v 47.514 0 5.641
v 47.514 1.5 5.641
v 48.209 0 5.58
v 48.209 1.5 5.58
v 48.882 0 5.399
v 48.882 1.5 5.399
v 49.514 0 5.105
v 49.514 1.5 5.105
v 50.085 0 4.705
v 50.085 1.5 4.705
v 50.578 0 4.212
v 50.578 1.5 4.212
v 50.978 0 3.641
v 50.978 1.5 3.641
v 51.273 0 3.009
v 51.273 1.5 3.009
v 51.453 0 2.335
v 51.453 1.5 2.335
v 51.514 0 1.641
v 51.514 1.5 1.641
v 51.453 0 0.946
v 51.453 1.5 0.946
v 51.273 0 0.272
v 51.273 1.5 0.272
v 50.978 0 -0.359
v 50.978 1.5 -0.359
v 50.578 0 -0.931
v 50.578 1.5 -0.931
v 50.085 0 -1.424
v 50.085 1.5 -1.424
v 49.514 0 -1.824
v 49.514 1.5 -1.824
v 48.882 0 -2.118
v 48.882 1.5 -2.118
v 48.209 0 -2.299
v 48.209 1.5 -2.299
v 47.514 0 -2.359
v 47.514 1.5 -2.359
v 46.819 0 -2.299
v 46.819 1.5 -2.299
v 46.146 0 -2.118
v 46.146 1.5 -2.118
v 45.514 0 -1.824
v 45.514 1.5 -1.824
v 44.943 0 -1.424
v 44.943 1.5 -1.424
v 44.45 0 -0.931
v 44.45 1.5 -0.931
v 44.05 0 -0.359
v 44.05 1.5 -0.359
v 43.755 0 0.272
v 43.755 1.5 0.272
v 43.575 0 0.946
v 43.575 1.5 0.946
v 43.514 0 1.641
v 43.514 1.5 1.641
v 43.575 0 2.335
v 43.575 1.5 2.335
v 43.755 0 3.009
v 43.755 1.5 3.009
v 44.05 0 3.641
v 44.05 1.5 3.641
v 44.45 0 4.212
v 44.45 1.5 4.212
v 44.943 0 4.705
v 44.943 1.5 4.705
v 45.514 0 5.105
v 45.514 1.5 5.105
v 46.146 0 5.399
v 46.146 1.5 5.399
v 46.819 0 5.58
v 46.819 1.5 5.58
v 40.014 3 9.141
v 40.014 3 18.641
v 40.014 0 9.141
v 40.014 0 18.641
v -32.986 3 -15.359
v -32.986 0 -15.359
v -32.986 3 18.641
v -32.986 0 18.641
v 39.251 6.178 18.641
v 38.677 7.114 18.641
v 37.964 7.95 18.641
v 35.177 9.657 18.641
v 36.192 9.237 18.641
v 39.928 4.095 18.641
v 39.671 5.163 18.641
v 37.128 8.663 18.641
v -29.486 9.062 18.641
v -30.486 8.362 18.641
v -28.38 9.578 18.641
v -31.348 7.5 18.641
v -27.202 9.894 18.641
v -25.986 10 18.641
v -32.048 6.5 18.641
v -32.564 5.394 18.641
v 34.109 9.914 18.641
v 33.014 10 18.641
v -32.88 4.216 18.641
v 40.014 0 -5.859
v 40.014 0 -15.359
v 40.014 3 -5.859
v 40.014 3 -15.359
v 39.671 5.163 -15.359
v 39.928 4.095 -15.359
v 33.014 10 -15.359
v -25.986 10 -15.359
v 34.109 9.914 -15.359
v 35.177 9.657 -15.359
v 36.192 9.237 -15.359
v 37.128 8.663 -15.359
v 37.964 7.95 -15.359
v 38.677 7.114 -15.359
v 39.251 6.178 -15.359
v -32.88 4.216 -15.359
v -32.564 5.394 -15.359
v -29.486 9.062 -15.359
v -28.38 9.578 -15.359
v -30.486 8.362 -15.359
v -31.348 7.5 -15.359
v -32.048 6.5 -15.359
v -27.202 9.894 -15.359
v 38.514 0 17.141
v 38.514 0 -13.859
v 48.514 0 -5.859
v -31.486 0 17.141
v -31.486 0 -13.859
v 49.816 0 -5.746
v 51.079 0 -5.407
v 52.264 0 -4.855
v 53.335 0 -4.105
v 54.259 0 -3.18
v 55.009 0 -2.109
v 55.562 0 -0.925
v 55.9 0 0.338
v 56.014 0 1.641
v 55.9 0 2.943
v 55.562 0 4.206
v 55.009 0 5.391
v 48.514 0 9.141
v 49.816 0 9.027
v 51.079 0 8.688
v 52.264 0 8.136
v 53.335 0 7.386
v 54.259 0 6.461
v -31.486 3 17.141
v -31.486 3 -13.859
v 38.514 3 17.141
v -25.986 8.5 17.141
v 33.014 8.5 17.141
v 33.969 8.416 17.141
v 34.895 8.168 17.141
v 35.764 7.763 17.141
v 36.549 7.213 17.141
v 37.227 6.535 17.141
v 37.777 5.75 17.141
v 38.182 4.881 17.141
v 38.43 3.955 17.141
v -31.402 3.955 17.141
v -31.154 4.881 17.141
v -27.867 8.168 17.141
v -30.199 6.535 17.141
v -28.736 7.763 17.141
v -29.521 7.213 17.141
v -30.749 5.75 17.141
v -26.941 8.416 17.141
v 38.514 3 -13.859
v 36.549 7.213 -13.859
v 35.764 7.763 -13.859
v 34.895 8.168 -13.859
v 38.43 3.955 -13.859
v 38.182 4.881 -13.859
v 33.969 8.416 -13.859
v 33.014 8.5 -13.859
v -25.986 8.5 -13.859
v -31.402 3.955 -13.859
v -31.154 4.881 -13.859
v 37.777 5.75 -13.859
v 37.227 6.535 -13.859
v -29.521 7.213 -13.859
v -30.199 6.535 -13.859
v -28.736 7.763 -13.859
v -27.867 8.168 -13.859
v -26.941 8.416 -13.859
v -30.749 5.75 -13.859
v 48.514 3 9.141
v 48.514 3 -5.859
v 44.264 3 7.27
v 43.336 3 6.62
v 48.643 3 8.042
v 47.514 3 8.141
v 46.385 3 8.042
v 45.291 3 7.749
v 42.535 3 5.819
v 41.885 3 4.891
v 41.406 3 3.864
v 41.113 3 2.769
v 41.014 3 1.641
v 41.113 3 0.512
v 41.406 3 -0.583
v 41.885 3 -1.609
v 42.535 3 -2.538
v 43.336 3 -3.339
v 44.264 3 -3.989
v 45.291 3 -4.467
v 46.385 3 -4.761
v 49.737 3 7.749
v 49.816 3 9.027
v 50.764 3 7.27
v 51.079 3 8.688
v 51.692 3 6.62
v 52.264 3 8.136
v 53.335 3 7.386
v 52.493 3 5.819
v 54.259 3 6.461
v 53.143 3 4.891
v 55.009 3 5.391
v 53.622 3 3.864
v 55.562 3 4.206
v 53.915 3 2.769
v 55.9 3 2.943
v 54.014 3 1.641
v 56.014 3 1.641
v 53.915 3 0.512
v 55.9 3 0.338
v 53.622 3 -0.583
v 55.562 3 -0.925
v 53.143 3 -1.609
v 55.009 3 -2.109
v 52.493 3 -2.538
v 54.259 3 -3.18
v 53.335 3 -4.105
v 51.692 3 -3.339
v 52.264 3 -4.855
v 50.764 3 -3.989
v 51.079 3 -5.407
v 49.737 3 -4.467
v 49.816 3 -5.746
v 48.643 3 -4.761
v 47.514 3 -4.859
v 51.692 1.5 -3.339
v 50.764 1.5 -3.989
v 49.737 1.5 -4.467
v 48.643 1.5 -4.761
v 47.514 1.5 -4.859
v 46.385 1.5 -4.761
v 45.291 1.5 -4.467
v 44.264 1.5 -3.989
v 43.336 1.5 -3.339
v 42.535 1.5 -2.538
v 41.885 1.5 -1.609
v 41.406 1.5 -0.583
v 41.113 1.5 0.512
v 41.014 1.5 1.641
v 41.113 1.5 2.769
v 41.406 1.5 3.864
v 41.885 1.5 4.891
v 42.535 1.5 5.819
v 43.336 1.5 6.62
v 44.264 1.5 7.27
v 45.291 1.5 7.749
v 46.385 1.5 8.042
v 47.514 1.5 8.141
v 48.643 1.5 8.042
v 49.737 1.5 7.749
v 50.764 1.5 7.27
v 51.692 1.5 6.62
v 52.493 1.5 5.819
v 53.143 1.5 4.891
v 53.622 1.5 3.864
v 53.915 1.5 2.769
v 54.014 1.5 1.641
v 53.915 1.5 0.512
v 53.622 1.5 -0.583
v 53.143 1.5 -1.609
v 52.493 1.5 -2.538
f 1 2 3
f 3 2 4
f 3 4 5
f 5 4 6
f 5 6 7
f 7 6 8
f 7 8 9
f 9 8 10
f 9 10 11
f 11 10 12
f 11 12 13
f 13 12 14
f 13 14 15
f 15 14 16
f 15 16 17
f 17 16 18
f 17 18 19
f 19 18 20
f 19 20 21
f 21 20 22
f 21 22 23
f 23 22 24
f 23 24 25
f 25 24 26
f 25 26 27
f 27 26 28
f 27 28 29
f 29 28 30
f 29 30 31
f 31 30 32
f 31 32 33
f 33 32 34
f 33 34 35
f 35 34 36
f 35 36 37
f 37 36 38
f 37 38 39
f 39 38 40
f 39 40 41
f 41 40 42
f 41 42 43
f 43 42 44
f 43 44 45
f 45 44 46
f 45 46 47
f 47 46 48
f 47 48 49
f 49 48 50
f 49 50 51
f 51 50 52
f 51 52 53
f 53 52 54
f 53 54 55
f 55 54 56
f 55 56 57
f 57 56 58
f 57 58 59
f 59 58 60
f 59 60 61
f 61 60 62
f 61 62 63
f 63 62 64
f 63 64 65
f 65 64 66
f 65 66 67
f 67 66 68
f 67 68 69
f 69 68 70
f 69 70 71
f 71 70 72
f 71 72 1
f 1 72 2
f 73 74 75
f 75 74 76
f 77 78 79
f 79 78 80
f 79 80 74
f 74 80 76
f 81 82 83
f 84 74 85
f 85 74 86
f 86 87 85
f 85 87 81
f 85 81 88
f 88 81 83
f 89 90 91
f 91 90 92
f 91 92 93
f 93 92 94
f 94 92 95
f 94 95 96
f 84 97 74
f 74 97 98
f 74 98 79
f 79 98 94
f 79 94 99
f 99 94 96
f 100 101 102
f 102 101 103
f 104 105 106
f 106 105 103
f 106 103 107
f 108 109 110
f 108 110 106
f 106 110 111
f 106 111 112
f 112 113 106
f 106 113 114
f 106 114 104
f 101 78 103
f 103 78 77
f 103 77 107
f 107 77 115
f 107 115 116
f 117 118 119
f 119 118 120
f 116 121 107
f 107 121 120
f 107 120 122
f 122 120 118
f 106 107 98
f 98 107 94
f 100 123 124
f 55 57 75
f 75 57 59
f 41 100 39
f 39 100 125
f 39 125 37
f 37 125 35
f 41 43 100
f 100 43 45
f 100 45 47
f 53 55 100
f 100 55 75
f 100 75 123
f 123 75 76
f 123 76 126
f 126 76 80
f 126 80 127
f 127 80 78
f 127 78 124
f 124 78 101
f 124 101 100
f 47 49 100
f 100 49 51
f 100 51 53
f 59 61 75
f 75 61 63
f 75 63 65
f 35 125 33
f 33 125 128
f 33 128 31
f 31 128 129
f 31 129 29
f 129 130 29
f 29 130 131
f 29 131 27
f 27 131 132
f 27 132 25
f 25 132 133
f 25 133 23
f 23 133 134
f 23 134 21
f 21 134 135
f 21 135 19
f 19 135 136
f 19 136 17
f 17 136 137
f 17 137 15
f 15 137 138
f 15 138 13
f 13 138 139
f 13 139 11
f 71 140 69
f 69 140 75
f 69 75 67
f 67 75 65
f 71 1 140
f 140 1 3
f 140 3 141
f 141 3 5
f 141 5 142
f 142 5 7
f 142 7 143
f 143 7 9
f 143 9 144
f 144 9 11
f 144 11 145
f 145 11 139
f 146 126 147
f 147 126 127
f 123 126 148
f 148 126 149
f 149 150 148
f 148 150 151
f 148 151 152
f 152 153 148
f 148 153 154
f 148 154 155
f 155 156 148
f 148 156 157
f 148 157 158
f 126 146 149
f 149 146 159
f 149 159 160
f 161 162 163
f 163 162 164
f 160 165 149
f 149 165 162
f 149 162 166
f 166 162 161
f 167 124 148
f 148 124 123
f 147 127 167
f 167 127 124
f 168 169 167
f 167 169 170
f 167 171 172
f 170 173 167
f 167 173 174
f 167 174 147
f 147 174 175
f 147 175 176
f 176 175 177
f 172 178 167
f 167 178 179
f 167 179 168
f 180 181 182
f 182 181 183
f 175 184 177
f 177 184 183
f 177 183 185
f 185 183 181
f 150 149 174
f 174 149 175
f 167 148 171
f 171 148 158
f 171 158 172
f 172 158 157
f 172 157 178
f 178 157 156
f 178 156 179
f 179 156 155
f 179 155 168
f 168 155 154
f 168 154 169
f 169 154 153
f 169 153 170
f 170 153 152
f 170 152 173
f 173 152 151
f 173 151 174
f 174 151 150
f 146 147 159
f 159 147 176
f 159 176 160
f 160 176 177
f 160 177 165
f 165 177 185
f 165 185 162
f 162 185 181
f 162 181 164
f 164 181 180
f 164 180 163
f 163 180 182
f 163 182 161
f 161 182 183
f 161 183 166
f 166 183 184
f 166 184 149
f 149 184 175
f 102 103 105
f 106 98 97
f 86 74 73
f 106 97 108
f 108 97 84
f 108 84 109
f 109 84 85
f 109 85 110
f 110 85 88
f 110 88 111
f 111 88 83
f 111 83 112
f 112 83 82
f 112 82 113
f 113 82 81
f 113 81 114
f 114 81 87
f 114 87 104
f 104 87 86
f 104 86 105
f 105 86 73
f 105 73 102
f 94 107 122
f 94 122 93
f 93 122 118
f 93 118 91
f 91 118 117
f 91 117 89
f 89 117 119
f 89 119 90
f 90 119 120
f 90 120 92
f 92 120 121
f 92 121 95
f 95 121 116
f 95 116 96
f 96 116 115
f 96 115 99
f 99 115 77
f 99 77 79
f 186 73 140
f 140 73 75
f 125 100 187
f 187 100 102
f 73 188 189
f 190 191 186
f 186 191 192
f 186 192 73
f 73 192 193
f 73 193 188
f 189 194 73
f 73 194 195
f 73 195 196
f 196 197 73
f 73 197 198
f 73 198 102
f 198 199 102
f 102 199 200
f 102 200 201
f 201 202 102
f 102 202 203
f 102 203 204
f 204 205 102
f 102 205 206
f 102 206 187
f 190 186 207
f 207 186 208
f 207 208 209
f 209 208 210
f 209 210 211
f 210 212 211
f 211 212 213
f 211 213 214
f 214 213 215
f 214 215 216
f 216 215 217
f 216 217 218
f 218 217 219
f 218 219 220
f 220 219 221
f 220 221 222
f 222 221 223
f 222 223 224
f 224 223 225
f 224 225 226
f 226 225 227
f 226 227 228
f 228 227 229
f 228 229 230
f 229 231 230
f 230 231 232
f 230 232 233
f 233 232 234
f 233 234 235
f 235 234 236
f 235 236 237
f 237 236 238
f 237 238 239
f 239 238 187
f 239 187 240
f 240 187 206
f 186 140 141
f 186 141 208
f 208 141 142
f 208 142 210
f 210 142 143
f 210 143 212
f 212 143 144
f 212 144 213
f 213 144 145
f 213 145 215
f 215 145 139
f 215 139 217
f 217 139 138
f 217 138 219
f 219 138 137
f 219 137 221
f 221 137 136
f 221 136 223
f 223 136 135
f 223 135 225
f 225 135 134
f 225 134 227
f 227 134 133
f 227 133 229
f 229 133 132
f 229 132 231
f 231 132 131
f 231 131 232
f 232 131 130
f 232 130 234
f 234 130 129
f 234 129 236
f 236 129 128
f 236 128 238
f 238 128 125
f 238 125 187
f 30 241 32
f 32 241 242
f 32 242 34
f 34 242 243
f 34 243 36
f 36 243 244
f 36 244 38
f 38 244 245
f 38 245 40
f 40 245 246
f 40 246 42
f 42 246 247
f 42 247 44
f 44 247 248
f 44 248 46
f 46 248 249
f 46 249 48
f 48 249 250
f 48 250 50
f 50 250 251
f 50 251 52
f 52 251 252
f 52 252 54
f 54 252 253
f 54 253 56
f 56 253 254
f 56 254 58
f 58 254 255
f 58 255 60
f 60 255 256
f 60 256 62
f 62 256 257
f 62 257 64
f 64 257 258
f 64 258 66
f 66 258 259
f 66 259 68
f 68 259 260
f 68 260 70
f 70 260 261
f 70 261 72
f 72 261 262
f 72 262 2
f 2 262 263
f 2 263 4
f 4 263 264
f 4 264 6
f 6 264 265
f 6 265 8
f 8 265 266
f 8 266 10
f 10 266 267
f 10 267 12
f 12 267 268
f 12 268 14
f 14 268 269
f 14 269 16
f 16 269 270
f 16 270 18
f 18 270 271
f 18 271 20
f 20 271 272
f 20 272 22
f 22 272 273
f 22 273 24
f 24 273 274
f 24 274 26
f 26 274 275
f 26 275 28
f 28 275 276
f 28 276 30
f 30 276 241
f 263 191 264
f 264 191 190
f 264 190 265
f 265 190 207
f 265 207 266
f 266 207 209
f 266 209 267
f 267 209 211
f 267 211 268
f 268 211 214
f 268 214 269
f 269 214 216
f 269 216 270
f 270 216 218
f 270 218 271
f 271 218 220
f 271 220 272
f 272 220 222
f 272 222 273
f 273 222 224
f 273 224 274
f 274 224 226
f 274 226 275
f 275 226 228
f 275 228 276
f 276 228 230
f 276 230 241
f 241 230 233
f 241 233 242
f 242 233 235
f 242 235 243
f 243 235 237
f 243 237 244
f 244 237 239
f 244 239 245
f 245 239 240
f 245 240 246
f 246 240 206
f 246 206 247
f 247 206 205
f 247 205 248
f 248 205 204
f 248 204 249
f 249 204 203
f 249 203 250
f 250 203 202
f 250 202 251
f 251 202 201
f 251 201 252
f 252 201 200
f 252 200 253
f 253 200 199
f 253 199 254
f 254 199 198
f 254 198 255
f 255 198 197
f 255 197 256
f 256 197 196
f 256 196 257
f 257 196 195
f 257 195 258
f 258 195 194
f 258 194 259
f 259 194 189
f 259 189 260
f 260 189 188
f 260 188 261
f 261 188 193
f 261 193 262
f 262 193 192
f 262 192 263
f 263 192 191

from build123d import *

# Parameters (mm, degrees)
SKETCH1_W          = 73
SKETCH1_H          = 34
BASE_DEPTH         = 10
SKETCH3_W          = 70
SKETCH3_H          = 31
INSIDE_CUT_DEPTH   = 8.5
INSIDE_FILLET_R    = 5.5
OUTSIDE_FILLET_R   = 7
SKETCH4_W          = 16
SKETCH4_H          = 15
SCREW_SQUARE_DEPTH = 3
SCREW_FILLET_R     = 7.5
SKETCH5_R          = 4
CUT_EXTRUDE3_DEPTH = 3
SKETCH7_R          = 6.5
CUT_EXTRUDE4_DEPTH = 1.5


with BuildPart() as part:
    # Sketch1 → base (new body)
    with BuildSketch(Plane(origin=(0, 0, 0), x_dir=(1, 0, 0), z_dir=(0, 1, 0))):
        with Locations((3.513975155, -1.64052795)):
            Rectangle(SKETCH1_W, SKETCH1_H)
    extrude(amount=BASE_DEPTH)

    # Sketch3 → inside cut (cut)
    with BuildSketch(Plane.XZ):
        with Locations((3.513975155, 1.64052795)):
            Rectangle(SKETCH3_W, SKETCH3_H)
    extrude(amount=-INSIDE_CUT_DEPTH, mode=Mode.SUBTRACT)

    # inside fillet
    inside_fillet_edges = [part.edges().sort_by_distance(p)[0] for p in [
        (-31.486024845, 8.5, 1.64052795),
        (38.513975155, 8.5, 1.64052795),
    ]]
    fillet(inside_fillet_edges, radius=INSIDE_FILLET_R)

    # outside fillet
    outside_fillet_edges = [part.edges().sort_by_distance(p)[0] for p in [
        (40.013975155, 10, 1.64052795),
        (-32.986024845, 10, 1.64052795),
    ]]
    fillet(outside_fillet_edges, radius=OUTSIDE_FILLET_R)

    # Sketch4 → screw square (add)
    with BuildSketch(Plane.XZ):
        with Locations((48.013975155, 1.64052795)):
            Rectangle(SKETCH4_W, SKETCH4_H)
    extrude(amount=-SCREW_SQUARE_DEPTH)

    # screw fillet
    screw_fillet_edges = [part.edges().sort_by_distance(p)[0] for p in [
        (56.013975155, 1.5, -5.85947205),
        (56.013975155, 1.5, 9.14052795),
    ]]
    fillet(screw_fillet_edges, radius=SCREW_FILLET_R - 0.0001)  # a hair under: the kernel refuses the full size

    # Sketch5 → Cut-Extrude3 (cut)
    with BuildSketch(Plane(origin=(0, 3, 0), x_dir=(1, 0, 0), z_dir=(0, 1, 0))):
        with Locations(Location((47.513975155, -1.64052795, 0), (0, 0, 270))):
            Circle(SKETCH5_R)
    extrude(amount=-CUT_EXTRUDE3_DEPTH, mode=Mode.SUBTRACT)

    # Sketch7 → Cut-Extrude4 (cut)
    with BuildSketch(Plane(origin=(0, 3, 0), x_dir=(1, 0, 0), z_dir=(0, 1, 0))):
        with Locations(Location((47.513975155, -1.64052795, 0), (0, 0, 270))):
            Circle(SKETCH7_R)
    extrude(amount=-CUT_EXTRUDE4_DEPTH, mode=Mode.SUBTRACT)


solid = part.part
